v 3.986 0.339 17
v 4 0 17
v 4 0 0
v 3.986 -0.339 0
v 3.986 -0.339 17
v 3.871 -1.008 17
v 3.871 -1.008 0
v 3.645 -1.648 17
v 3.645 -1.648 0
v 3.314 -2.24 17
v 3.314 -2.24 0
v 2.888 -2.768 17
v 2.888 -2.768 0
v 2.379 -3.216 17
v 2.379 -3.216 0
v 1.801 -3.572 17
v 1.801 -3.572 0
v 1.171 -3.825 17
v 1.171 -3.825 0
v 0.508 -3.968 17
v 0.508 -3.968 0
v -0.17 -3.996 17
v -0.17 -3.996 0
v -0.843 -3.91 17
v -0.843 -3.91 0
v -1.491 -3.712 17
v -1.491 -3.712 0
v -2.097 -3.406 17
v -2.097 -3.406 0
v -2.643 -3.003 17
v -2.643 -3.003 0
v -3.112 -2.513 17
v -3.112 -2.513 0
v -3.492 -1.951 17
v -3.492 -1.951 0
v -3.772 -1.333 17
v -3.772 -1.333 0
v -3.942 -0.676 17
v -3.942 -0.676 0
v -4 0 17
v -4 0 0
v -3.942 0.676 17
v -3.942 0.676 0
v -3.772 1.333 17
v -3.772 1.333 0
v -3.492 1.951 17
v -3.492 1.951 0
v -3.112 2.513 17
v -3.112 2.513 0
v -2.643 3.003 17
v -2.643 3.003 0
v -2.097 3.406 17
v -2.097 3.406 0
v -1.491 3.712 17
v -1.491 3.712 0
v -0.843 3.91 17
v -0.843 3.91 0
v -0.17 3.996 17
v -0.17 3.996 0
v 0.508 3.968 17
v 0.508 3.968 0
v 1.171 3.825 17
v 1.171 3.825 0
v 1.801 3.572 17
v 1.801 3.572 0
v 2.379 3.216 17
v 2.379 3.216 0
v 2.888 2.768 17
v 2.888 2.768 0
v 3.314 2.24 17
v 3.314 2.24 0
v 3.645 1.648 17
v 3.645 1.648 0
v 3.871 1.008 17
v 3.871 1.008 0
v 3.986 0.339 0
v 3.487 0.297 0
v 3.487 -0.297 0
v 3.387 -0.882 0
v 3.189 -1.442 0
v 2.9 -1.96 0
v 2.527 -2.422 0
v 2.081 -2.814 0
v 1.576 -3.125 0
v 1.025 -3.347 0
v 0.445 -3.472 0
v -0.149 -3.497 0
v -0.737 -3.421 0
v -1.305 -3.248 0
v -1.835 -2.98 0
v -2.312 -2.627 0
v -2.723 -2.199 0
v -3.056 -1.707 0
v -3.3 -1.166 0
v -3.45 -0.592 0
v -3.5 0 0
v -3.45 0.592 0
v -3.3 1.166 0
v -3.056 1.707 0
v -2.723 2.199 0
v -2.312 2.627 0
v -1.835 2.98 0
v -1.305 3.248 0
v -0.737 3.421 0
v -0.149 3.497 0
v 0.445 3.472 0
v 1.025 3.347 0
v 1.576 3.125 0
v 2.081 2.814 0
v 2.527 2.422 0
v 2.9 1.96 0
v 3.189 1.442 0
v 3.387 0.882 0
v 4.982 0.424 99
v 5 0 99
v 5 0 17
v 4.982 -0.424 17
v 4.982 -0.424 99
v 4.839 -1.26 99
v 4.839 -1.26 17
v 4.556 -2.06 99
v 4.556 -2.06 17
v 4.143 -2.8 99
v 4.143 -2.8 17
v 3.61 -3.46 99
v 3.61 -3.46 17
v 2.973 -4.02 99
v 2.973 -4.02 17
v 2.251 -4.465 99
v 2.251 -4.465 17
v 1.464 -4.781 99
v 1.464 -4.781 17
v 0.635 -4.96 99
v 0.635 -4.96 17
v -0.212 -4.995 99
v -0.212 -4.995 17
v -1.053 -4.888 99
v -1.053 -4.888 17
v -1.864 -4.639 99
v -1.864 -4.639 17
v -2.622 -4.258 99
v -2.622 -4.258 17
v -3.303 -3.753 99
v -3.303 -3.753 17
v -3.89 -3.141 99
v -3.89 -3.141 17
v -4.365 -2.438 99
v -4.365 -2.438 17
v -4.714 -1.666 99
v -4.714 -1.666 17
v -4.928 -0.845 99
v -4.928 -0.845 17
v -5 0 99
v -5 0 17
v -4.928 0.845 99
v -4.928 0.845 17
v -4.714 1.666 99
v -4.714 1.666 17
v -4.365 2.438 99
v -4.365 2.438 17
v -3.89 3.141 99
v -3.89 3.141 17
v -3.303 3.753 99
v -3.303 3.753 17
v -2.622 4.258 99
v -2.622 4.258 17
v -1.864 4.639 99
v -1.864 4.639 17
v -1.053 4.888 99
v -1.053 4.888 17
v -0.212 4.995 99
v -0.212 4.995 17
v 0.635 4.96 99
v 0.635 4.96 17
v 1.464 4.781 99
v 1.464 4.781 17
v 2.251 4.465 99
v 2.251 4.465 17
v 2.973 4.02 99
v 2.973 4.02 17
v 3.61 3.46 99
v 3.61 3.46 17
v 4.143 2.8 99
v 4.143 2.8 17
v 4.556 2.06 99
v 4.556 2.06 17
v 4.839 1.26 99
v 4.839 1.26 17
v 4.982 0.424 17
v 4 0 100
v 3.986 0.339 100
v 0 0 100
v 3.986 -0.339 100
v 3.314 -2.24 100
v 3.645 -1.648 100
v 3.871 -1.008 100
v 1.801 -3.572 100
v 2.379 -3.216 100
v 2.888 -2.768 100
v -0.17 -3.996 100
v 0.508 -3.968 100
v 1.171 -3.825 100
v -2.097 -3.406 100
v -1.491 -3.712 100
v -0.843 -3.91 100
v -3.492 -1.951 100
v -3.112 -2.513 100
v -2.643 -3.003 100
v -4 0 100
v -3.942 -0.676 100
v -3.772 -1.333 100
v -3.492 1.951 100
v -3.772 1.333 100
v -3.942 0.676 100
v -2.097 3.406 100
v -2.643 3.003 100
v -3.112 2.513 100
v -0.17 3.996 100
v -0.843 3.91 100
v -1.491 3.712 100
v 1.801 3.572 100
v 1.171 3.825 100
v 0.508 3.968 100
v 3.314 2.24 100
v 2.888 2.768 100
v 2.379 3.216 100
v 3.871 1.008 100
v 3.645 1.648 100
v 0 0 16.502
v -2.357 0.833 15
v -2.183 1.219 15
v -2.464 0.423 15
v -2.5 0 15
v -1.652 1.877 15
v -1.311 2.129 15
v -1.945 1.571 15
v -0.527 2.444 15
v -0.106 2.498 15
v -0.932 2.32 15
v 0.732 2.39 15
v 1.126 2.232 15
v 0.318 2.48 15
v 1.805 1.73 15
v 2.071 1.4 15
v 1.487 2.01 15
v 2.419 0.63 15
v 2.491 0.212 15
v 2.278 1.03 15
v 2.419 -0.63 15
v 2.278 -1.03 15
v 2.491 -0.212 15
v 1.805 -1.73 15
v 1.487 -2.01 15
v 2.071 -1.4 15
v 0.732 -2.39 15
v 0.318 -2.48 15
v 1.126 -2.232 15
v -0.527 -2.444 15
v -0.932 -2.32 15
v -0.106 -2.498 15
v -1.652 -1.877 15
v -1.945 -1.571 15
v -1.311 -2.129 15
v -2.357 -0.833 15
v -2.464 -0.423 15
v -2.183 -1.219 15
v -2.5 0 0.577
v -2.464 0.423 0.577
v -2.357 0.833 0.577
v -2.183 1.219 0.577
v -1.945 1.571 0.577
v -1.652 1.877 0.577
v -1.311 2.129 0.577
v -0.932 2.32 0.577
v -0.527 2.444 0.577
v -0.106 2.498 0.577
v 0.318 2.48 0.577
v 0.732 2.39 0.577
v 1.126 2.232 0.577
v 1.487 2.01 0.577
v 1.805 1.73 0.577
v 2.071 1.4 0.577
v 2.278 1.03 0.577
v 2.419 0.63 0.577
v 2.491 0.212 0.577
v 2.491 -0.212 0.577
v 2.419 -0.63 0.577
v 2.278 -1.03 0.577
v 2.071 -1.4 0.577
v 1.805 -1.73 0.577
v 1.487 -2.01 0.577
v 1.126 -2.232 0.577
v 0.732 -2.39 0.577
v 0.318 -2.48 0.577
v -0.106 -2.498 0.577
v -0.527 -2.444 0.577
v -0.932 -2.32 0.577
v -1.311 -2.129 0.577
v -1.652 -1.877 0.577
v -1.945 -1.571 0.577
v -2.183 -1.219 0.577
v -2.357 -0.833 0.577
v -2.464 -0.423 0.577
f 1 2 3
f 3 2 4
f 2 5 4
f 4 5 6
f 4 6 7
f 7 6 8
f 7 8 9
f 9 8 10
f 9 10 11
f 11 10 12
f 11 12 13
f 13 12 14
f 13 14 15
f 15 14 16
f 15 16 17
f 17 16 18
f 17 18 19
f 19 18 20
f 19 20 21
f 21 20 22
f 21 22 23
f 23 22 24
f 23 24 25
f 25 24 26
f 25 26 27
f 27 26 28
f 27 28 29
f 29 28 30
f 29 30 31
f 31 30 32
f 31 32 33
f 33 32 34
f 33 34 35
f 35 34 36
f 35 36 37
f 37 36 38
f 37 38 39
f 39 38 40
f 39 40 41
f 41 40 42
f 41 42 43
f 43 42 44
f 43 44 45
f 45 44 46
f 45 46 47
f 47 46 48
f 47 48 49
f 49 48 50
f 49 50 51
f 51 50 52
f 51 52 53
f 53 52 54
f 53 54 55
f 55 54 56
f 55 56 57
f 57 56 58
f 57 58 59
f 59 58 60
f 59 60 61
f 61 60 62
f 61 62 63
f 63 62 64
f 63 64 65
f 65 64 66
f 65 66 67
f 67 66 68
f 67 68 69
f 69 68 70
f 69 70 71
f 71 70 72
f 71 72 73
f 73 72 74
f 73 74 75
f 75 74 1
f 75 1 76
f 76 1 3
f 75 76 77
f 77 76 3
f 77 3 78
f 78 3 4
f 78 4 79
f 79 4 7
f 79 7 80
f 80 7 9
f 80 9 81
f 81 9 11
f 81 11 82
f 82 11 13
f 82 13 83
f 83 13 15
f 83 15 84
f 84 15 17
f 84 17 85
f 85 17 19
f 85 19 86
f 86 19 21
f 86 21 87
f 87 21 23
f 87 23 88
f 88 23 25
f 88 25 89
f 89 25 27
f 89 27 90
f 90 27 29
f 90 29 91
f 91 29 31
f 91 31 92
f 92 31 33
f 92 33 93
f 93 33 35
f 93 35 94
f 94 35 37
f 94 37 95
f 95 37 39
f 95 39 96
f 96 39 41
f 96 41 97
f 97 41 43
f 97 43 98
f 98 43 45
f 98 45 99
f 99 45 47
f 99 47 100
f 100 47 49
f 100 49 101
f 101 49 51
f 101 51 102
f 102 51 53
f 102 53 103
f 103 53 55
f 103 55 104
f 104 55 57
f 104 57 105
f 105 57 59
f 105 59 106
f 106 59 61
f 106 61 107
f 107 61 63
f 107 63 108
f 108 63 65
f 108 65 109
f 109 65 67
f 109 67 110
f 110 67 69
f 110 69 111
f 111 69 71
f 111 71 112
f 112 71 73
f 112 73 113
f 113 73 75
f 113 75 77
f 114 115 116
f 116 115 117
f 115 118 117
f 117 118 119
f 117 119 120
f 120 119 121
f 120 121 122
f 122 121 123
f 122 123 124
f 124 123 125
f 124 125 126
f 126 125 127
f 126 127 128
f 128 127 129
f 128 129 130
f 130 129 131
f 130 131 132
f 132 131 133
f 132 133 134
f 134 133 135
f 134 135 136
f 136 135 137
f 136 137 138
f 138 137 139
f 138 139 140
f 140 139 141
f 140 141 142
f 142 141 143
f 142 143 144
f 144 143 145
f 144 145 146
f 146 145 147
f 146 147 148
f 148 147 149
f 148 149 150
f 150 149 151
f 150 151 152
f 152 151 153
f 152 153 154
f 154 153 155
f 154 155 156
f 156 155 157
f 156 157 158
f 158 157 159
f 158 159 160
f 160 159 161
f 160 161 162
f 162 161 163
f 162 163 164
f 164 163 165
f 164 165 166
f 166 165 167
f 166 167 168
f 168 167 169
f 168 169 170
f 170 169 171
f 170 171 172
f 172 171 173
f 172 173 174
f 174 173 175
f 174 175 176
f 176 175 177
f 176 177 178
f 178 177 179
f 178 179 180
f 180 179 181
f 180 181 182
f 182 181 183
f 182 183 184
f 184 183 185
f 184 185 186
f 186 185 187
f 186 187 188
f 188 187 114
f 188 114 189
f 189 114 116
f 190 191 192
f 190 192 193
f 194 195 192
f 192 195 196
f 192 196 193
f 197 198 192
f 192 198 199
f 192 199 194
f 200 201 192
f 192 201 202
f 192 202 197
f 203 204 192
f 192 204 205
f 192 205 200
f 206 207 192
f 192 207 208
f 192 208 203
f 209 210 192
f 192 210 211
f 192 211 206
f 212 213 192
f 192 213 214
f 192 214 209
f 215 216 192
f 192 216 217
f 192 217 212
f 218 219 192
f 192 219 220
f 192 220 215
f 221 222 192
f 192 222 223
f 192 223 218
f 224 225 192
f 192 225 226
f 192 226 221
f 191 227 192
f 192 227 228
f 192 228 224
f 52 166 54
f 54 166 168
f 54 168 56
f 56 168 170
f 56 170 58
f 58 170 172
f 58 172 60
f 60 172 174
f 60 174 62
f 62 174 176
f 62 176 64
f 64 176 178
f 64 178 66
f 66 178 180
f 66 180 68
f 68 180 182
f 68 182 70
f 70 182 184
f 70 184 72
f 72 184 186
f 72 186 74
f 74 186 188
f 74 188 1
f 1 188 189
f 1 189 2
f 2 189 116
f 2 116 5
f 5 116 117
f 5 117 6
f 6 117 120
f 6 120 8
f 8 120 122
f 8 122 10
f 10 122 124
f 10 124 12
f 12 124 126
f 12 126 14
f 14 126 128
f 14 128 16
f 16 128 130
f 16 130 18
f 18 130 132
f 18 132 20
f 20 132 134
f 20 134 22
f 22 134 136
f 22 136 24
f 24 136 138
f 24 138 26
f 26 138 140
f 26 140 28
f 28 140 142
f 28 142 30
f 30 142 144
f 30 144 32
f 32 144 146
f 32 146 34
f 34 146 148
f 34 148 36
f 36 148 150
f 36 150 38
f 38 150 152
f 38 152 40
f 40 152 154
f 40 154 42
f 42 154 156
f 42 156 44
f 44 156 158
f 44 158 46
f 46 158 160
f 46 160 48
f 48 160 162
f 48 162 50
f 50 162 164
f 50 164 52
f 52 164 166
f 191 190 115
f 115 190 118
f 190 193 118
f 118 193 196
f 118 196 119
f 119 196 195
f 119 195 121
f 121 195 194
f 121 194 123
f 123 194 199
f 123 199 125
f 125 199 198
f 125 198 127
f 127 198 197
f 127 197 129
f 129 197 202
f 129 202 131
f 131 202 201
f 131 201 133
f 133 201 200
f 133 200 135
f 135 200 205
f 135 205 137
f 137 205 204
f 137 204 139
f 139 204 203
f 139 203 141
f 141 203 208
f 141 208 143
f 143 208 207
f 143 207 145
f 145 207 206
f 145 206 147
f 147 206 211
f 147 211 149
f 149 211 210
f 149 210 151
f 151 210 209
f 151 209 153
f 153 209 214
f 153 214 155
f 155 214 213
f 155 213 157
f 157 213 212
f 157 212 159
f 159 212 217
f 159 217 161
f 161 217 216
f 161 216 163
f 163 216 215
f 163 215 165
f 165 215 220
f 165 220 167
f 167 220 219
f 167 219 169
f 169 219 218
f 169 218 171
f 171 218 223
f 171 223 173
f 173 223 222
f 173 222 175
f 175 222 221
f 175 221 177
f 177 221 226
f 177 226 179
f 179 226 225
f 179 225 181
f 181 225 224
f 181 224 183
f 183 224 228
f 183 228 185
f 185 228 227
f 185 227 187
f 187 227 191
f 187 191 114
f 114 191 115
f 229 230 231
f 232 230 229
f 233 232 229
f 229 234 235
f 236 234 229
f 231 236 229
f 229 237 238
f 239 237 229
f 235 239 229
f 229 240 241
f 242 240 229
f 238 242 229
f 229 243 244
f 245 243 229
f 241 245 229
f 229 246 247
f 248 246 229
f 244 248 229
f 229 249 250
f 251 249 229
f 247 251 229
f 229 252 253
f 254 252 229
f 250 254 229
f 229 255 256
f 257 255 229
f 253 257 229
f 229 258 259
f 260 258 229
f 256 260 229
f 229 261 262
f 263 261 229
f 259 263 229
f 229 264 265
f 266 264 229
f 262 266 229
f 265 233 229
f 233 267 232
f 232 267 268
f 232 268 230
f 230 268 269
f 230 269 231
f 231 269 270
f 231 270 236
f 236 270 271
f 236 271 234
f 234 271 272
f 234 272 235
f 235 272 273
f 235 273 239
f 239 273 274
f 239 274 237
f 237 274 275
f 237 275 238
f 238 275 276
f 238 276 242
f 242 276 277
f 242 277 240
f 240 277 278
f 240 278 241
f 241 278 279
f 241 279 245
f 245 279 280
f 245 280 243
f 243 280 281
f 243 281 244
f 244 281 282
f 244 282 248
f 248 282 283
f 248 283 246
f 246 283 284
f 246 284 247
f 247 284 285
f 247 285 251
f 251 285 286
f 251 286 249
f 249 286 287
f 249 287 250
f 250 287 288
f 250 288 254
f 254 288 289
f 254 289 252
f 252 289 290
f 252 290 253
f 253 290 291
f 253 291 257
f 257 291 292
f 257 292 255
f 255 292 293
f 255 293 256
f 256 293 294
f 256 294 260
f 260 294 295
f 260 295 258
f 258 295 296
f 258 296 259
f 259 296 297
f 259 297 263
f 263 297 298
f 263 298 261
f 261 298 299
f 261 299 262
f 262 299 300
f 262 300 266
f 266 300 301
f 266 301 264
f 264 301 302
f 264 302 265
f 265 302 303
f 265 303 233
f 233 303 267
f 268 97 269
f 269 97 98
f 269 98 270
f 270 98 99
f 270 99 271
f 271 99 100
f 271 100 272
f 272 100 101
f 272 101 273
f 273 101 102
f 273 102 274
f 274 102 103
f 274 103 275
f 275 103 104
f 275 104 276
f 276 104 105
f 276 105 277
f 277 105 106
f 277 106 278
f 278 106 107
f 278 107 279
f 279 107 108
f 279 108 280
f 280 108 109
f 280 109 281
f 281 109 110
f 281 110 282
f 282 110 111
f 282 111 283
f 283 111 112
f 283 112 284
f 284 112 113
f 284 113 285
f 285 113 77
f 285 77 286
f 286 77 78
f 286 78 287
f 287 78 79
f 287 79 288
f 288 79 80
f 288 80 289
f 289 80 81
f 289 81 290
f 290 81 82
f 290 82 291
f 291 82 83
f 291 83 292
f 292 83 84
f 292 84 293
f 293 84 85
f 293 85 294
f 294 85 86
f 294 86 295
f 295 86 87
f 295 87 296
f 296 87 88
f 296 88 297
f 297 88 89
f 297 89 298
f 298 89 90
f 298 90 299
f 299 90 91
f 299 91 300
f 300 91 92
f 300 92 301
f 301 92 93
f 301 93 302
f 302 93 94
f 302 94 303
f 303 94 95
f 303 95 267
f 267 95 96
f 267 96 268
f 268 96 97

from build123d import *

# Parameters (mm, degrees)
ESQUISSE1_R                 = 4
BOSS_EXTRU_1_DEPTH          = 17
ESQUISSE2_R                 = 5
BOSS_EXTRU_2_DEPTH          = 83
CHANFREIN1_SIZE             = 1
TROU_TARAUD_M61_D           = 5
TROU_TARAUD_M61_DEPTH       = 15
TROU_TARAUD_M61_CSINK_D     = 7
TROU_TARAUD_M61_CSINK_ANGLE = 120
TROU_TARAUD_M61_TIP         = 1.502151548


with BuildPart() as part:
    # Esquisse1 → Boss.-Extru.1 (new body)
    with BuildSketch(Plane.XY):
        Circle(ESQUISSE1_R)
    extrude(amount=BOSS_EXTRU_1_DEPTH)

    # Esquisse2 → Boss.-Extru.2 (add)
    with BuildSketch(Plane.XY.offset(17)):
        Circle(ESQUISSE2_R)
    extrude(amount=BOSS_EXTRU_2_DEPTH)

    # Chanfrein1
    chanfrein1_edges = [part.edges().sort_by_distance(p)[0] for p in [
        (-5, 0, 100),
    ]]
    chamfer(chanfrein1_edges, length=CHANFREIN1_SIZE)

    # Trou taraudé M61
    with Locations(Plane(origin=(0, 0, 0), x_dir=(-1, 0, 0), z_dir=(0, 0, -1))):
        with Locations((0, 0)):
            CounterSinkHole(TROU_TARAUD_M61_D / 2, TROU_TARAUD_M61_CSINK_D / 2, depth=TROU_TARAUD_M61_DEPTH, counter_sink_angle=TROU_TARAUD_M61_CSINK_ANGLE)
            with Locations((0, 0, -(TROU_TARAUD_M61_DEPTH + TROU_TARAUD_M61_TIP / 2))):  # 118° drill point
                Cone(0, TROU_TARAUD_M61_D / 2, TROU_TARAUD_M61_TIP, mode=Mode.SUBTRACT)


solid = part.part
